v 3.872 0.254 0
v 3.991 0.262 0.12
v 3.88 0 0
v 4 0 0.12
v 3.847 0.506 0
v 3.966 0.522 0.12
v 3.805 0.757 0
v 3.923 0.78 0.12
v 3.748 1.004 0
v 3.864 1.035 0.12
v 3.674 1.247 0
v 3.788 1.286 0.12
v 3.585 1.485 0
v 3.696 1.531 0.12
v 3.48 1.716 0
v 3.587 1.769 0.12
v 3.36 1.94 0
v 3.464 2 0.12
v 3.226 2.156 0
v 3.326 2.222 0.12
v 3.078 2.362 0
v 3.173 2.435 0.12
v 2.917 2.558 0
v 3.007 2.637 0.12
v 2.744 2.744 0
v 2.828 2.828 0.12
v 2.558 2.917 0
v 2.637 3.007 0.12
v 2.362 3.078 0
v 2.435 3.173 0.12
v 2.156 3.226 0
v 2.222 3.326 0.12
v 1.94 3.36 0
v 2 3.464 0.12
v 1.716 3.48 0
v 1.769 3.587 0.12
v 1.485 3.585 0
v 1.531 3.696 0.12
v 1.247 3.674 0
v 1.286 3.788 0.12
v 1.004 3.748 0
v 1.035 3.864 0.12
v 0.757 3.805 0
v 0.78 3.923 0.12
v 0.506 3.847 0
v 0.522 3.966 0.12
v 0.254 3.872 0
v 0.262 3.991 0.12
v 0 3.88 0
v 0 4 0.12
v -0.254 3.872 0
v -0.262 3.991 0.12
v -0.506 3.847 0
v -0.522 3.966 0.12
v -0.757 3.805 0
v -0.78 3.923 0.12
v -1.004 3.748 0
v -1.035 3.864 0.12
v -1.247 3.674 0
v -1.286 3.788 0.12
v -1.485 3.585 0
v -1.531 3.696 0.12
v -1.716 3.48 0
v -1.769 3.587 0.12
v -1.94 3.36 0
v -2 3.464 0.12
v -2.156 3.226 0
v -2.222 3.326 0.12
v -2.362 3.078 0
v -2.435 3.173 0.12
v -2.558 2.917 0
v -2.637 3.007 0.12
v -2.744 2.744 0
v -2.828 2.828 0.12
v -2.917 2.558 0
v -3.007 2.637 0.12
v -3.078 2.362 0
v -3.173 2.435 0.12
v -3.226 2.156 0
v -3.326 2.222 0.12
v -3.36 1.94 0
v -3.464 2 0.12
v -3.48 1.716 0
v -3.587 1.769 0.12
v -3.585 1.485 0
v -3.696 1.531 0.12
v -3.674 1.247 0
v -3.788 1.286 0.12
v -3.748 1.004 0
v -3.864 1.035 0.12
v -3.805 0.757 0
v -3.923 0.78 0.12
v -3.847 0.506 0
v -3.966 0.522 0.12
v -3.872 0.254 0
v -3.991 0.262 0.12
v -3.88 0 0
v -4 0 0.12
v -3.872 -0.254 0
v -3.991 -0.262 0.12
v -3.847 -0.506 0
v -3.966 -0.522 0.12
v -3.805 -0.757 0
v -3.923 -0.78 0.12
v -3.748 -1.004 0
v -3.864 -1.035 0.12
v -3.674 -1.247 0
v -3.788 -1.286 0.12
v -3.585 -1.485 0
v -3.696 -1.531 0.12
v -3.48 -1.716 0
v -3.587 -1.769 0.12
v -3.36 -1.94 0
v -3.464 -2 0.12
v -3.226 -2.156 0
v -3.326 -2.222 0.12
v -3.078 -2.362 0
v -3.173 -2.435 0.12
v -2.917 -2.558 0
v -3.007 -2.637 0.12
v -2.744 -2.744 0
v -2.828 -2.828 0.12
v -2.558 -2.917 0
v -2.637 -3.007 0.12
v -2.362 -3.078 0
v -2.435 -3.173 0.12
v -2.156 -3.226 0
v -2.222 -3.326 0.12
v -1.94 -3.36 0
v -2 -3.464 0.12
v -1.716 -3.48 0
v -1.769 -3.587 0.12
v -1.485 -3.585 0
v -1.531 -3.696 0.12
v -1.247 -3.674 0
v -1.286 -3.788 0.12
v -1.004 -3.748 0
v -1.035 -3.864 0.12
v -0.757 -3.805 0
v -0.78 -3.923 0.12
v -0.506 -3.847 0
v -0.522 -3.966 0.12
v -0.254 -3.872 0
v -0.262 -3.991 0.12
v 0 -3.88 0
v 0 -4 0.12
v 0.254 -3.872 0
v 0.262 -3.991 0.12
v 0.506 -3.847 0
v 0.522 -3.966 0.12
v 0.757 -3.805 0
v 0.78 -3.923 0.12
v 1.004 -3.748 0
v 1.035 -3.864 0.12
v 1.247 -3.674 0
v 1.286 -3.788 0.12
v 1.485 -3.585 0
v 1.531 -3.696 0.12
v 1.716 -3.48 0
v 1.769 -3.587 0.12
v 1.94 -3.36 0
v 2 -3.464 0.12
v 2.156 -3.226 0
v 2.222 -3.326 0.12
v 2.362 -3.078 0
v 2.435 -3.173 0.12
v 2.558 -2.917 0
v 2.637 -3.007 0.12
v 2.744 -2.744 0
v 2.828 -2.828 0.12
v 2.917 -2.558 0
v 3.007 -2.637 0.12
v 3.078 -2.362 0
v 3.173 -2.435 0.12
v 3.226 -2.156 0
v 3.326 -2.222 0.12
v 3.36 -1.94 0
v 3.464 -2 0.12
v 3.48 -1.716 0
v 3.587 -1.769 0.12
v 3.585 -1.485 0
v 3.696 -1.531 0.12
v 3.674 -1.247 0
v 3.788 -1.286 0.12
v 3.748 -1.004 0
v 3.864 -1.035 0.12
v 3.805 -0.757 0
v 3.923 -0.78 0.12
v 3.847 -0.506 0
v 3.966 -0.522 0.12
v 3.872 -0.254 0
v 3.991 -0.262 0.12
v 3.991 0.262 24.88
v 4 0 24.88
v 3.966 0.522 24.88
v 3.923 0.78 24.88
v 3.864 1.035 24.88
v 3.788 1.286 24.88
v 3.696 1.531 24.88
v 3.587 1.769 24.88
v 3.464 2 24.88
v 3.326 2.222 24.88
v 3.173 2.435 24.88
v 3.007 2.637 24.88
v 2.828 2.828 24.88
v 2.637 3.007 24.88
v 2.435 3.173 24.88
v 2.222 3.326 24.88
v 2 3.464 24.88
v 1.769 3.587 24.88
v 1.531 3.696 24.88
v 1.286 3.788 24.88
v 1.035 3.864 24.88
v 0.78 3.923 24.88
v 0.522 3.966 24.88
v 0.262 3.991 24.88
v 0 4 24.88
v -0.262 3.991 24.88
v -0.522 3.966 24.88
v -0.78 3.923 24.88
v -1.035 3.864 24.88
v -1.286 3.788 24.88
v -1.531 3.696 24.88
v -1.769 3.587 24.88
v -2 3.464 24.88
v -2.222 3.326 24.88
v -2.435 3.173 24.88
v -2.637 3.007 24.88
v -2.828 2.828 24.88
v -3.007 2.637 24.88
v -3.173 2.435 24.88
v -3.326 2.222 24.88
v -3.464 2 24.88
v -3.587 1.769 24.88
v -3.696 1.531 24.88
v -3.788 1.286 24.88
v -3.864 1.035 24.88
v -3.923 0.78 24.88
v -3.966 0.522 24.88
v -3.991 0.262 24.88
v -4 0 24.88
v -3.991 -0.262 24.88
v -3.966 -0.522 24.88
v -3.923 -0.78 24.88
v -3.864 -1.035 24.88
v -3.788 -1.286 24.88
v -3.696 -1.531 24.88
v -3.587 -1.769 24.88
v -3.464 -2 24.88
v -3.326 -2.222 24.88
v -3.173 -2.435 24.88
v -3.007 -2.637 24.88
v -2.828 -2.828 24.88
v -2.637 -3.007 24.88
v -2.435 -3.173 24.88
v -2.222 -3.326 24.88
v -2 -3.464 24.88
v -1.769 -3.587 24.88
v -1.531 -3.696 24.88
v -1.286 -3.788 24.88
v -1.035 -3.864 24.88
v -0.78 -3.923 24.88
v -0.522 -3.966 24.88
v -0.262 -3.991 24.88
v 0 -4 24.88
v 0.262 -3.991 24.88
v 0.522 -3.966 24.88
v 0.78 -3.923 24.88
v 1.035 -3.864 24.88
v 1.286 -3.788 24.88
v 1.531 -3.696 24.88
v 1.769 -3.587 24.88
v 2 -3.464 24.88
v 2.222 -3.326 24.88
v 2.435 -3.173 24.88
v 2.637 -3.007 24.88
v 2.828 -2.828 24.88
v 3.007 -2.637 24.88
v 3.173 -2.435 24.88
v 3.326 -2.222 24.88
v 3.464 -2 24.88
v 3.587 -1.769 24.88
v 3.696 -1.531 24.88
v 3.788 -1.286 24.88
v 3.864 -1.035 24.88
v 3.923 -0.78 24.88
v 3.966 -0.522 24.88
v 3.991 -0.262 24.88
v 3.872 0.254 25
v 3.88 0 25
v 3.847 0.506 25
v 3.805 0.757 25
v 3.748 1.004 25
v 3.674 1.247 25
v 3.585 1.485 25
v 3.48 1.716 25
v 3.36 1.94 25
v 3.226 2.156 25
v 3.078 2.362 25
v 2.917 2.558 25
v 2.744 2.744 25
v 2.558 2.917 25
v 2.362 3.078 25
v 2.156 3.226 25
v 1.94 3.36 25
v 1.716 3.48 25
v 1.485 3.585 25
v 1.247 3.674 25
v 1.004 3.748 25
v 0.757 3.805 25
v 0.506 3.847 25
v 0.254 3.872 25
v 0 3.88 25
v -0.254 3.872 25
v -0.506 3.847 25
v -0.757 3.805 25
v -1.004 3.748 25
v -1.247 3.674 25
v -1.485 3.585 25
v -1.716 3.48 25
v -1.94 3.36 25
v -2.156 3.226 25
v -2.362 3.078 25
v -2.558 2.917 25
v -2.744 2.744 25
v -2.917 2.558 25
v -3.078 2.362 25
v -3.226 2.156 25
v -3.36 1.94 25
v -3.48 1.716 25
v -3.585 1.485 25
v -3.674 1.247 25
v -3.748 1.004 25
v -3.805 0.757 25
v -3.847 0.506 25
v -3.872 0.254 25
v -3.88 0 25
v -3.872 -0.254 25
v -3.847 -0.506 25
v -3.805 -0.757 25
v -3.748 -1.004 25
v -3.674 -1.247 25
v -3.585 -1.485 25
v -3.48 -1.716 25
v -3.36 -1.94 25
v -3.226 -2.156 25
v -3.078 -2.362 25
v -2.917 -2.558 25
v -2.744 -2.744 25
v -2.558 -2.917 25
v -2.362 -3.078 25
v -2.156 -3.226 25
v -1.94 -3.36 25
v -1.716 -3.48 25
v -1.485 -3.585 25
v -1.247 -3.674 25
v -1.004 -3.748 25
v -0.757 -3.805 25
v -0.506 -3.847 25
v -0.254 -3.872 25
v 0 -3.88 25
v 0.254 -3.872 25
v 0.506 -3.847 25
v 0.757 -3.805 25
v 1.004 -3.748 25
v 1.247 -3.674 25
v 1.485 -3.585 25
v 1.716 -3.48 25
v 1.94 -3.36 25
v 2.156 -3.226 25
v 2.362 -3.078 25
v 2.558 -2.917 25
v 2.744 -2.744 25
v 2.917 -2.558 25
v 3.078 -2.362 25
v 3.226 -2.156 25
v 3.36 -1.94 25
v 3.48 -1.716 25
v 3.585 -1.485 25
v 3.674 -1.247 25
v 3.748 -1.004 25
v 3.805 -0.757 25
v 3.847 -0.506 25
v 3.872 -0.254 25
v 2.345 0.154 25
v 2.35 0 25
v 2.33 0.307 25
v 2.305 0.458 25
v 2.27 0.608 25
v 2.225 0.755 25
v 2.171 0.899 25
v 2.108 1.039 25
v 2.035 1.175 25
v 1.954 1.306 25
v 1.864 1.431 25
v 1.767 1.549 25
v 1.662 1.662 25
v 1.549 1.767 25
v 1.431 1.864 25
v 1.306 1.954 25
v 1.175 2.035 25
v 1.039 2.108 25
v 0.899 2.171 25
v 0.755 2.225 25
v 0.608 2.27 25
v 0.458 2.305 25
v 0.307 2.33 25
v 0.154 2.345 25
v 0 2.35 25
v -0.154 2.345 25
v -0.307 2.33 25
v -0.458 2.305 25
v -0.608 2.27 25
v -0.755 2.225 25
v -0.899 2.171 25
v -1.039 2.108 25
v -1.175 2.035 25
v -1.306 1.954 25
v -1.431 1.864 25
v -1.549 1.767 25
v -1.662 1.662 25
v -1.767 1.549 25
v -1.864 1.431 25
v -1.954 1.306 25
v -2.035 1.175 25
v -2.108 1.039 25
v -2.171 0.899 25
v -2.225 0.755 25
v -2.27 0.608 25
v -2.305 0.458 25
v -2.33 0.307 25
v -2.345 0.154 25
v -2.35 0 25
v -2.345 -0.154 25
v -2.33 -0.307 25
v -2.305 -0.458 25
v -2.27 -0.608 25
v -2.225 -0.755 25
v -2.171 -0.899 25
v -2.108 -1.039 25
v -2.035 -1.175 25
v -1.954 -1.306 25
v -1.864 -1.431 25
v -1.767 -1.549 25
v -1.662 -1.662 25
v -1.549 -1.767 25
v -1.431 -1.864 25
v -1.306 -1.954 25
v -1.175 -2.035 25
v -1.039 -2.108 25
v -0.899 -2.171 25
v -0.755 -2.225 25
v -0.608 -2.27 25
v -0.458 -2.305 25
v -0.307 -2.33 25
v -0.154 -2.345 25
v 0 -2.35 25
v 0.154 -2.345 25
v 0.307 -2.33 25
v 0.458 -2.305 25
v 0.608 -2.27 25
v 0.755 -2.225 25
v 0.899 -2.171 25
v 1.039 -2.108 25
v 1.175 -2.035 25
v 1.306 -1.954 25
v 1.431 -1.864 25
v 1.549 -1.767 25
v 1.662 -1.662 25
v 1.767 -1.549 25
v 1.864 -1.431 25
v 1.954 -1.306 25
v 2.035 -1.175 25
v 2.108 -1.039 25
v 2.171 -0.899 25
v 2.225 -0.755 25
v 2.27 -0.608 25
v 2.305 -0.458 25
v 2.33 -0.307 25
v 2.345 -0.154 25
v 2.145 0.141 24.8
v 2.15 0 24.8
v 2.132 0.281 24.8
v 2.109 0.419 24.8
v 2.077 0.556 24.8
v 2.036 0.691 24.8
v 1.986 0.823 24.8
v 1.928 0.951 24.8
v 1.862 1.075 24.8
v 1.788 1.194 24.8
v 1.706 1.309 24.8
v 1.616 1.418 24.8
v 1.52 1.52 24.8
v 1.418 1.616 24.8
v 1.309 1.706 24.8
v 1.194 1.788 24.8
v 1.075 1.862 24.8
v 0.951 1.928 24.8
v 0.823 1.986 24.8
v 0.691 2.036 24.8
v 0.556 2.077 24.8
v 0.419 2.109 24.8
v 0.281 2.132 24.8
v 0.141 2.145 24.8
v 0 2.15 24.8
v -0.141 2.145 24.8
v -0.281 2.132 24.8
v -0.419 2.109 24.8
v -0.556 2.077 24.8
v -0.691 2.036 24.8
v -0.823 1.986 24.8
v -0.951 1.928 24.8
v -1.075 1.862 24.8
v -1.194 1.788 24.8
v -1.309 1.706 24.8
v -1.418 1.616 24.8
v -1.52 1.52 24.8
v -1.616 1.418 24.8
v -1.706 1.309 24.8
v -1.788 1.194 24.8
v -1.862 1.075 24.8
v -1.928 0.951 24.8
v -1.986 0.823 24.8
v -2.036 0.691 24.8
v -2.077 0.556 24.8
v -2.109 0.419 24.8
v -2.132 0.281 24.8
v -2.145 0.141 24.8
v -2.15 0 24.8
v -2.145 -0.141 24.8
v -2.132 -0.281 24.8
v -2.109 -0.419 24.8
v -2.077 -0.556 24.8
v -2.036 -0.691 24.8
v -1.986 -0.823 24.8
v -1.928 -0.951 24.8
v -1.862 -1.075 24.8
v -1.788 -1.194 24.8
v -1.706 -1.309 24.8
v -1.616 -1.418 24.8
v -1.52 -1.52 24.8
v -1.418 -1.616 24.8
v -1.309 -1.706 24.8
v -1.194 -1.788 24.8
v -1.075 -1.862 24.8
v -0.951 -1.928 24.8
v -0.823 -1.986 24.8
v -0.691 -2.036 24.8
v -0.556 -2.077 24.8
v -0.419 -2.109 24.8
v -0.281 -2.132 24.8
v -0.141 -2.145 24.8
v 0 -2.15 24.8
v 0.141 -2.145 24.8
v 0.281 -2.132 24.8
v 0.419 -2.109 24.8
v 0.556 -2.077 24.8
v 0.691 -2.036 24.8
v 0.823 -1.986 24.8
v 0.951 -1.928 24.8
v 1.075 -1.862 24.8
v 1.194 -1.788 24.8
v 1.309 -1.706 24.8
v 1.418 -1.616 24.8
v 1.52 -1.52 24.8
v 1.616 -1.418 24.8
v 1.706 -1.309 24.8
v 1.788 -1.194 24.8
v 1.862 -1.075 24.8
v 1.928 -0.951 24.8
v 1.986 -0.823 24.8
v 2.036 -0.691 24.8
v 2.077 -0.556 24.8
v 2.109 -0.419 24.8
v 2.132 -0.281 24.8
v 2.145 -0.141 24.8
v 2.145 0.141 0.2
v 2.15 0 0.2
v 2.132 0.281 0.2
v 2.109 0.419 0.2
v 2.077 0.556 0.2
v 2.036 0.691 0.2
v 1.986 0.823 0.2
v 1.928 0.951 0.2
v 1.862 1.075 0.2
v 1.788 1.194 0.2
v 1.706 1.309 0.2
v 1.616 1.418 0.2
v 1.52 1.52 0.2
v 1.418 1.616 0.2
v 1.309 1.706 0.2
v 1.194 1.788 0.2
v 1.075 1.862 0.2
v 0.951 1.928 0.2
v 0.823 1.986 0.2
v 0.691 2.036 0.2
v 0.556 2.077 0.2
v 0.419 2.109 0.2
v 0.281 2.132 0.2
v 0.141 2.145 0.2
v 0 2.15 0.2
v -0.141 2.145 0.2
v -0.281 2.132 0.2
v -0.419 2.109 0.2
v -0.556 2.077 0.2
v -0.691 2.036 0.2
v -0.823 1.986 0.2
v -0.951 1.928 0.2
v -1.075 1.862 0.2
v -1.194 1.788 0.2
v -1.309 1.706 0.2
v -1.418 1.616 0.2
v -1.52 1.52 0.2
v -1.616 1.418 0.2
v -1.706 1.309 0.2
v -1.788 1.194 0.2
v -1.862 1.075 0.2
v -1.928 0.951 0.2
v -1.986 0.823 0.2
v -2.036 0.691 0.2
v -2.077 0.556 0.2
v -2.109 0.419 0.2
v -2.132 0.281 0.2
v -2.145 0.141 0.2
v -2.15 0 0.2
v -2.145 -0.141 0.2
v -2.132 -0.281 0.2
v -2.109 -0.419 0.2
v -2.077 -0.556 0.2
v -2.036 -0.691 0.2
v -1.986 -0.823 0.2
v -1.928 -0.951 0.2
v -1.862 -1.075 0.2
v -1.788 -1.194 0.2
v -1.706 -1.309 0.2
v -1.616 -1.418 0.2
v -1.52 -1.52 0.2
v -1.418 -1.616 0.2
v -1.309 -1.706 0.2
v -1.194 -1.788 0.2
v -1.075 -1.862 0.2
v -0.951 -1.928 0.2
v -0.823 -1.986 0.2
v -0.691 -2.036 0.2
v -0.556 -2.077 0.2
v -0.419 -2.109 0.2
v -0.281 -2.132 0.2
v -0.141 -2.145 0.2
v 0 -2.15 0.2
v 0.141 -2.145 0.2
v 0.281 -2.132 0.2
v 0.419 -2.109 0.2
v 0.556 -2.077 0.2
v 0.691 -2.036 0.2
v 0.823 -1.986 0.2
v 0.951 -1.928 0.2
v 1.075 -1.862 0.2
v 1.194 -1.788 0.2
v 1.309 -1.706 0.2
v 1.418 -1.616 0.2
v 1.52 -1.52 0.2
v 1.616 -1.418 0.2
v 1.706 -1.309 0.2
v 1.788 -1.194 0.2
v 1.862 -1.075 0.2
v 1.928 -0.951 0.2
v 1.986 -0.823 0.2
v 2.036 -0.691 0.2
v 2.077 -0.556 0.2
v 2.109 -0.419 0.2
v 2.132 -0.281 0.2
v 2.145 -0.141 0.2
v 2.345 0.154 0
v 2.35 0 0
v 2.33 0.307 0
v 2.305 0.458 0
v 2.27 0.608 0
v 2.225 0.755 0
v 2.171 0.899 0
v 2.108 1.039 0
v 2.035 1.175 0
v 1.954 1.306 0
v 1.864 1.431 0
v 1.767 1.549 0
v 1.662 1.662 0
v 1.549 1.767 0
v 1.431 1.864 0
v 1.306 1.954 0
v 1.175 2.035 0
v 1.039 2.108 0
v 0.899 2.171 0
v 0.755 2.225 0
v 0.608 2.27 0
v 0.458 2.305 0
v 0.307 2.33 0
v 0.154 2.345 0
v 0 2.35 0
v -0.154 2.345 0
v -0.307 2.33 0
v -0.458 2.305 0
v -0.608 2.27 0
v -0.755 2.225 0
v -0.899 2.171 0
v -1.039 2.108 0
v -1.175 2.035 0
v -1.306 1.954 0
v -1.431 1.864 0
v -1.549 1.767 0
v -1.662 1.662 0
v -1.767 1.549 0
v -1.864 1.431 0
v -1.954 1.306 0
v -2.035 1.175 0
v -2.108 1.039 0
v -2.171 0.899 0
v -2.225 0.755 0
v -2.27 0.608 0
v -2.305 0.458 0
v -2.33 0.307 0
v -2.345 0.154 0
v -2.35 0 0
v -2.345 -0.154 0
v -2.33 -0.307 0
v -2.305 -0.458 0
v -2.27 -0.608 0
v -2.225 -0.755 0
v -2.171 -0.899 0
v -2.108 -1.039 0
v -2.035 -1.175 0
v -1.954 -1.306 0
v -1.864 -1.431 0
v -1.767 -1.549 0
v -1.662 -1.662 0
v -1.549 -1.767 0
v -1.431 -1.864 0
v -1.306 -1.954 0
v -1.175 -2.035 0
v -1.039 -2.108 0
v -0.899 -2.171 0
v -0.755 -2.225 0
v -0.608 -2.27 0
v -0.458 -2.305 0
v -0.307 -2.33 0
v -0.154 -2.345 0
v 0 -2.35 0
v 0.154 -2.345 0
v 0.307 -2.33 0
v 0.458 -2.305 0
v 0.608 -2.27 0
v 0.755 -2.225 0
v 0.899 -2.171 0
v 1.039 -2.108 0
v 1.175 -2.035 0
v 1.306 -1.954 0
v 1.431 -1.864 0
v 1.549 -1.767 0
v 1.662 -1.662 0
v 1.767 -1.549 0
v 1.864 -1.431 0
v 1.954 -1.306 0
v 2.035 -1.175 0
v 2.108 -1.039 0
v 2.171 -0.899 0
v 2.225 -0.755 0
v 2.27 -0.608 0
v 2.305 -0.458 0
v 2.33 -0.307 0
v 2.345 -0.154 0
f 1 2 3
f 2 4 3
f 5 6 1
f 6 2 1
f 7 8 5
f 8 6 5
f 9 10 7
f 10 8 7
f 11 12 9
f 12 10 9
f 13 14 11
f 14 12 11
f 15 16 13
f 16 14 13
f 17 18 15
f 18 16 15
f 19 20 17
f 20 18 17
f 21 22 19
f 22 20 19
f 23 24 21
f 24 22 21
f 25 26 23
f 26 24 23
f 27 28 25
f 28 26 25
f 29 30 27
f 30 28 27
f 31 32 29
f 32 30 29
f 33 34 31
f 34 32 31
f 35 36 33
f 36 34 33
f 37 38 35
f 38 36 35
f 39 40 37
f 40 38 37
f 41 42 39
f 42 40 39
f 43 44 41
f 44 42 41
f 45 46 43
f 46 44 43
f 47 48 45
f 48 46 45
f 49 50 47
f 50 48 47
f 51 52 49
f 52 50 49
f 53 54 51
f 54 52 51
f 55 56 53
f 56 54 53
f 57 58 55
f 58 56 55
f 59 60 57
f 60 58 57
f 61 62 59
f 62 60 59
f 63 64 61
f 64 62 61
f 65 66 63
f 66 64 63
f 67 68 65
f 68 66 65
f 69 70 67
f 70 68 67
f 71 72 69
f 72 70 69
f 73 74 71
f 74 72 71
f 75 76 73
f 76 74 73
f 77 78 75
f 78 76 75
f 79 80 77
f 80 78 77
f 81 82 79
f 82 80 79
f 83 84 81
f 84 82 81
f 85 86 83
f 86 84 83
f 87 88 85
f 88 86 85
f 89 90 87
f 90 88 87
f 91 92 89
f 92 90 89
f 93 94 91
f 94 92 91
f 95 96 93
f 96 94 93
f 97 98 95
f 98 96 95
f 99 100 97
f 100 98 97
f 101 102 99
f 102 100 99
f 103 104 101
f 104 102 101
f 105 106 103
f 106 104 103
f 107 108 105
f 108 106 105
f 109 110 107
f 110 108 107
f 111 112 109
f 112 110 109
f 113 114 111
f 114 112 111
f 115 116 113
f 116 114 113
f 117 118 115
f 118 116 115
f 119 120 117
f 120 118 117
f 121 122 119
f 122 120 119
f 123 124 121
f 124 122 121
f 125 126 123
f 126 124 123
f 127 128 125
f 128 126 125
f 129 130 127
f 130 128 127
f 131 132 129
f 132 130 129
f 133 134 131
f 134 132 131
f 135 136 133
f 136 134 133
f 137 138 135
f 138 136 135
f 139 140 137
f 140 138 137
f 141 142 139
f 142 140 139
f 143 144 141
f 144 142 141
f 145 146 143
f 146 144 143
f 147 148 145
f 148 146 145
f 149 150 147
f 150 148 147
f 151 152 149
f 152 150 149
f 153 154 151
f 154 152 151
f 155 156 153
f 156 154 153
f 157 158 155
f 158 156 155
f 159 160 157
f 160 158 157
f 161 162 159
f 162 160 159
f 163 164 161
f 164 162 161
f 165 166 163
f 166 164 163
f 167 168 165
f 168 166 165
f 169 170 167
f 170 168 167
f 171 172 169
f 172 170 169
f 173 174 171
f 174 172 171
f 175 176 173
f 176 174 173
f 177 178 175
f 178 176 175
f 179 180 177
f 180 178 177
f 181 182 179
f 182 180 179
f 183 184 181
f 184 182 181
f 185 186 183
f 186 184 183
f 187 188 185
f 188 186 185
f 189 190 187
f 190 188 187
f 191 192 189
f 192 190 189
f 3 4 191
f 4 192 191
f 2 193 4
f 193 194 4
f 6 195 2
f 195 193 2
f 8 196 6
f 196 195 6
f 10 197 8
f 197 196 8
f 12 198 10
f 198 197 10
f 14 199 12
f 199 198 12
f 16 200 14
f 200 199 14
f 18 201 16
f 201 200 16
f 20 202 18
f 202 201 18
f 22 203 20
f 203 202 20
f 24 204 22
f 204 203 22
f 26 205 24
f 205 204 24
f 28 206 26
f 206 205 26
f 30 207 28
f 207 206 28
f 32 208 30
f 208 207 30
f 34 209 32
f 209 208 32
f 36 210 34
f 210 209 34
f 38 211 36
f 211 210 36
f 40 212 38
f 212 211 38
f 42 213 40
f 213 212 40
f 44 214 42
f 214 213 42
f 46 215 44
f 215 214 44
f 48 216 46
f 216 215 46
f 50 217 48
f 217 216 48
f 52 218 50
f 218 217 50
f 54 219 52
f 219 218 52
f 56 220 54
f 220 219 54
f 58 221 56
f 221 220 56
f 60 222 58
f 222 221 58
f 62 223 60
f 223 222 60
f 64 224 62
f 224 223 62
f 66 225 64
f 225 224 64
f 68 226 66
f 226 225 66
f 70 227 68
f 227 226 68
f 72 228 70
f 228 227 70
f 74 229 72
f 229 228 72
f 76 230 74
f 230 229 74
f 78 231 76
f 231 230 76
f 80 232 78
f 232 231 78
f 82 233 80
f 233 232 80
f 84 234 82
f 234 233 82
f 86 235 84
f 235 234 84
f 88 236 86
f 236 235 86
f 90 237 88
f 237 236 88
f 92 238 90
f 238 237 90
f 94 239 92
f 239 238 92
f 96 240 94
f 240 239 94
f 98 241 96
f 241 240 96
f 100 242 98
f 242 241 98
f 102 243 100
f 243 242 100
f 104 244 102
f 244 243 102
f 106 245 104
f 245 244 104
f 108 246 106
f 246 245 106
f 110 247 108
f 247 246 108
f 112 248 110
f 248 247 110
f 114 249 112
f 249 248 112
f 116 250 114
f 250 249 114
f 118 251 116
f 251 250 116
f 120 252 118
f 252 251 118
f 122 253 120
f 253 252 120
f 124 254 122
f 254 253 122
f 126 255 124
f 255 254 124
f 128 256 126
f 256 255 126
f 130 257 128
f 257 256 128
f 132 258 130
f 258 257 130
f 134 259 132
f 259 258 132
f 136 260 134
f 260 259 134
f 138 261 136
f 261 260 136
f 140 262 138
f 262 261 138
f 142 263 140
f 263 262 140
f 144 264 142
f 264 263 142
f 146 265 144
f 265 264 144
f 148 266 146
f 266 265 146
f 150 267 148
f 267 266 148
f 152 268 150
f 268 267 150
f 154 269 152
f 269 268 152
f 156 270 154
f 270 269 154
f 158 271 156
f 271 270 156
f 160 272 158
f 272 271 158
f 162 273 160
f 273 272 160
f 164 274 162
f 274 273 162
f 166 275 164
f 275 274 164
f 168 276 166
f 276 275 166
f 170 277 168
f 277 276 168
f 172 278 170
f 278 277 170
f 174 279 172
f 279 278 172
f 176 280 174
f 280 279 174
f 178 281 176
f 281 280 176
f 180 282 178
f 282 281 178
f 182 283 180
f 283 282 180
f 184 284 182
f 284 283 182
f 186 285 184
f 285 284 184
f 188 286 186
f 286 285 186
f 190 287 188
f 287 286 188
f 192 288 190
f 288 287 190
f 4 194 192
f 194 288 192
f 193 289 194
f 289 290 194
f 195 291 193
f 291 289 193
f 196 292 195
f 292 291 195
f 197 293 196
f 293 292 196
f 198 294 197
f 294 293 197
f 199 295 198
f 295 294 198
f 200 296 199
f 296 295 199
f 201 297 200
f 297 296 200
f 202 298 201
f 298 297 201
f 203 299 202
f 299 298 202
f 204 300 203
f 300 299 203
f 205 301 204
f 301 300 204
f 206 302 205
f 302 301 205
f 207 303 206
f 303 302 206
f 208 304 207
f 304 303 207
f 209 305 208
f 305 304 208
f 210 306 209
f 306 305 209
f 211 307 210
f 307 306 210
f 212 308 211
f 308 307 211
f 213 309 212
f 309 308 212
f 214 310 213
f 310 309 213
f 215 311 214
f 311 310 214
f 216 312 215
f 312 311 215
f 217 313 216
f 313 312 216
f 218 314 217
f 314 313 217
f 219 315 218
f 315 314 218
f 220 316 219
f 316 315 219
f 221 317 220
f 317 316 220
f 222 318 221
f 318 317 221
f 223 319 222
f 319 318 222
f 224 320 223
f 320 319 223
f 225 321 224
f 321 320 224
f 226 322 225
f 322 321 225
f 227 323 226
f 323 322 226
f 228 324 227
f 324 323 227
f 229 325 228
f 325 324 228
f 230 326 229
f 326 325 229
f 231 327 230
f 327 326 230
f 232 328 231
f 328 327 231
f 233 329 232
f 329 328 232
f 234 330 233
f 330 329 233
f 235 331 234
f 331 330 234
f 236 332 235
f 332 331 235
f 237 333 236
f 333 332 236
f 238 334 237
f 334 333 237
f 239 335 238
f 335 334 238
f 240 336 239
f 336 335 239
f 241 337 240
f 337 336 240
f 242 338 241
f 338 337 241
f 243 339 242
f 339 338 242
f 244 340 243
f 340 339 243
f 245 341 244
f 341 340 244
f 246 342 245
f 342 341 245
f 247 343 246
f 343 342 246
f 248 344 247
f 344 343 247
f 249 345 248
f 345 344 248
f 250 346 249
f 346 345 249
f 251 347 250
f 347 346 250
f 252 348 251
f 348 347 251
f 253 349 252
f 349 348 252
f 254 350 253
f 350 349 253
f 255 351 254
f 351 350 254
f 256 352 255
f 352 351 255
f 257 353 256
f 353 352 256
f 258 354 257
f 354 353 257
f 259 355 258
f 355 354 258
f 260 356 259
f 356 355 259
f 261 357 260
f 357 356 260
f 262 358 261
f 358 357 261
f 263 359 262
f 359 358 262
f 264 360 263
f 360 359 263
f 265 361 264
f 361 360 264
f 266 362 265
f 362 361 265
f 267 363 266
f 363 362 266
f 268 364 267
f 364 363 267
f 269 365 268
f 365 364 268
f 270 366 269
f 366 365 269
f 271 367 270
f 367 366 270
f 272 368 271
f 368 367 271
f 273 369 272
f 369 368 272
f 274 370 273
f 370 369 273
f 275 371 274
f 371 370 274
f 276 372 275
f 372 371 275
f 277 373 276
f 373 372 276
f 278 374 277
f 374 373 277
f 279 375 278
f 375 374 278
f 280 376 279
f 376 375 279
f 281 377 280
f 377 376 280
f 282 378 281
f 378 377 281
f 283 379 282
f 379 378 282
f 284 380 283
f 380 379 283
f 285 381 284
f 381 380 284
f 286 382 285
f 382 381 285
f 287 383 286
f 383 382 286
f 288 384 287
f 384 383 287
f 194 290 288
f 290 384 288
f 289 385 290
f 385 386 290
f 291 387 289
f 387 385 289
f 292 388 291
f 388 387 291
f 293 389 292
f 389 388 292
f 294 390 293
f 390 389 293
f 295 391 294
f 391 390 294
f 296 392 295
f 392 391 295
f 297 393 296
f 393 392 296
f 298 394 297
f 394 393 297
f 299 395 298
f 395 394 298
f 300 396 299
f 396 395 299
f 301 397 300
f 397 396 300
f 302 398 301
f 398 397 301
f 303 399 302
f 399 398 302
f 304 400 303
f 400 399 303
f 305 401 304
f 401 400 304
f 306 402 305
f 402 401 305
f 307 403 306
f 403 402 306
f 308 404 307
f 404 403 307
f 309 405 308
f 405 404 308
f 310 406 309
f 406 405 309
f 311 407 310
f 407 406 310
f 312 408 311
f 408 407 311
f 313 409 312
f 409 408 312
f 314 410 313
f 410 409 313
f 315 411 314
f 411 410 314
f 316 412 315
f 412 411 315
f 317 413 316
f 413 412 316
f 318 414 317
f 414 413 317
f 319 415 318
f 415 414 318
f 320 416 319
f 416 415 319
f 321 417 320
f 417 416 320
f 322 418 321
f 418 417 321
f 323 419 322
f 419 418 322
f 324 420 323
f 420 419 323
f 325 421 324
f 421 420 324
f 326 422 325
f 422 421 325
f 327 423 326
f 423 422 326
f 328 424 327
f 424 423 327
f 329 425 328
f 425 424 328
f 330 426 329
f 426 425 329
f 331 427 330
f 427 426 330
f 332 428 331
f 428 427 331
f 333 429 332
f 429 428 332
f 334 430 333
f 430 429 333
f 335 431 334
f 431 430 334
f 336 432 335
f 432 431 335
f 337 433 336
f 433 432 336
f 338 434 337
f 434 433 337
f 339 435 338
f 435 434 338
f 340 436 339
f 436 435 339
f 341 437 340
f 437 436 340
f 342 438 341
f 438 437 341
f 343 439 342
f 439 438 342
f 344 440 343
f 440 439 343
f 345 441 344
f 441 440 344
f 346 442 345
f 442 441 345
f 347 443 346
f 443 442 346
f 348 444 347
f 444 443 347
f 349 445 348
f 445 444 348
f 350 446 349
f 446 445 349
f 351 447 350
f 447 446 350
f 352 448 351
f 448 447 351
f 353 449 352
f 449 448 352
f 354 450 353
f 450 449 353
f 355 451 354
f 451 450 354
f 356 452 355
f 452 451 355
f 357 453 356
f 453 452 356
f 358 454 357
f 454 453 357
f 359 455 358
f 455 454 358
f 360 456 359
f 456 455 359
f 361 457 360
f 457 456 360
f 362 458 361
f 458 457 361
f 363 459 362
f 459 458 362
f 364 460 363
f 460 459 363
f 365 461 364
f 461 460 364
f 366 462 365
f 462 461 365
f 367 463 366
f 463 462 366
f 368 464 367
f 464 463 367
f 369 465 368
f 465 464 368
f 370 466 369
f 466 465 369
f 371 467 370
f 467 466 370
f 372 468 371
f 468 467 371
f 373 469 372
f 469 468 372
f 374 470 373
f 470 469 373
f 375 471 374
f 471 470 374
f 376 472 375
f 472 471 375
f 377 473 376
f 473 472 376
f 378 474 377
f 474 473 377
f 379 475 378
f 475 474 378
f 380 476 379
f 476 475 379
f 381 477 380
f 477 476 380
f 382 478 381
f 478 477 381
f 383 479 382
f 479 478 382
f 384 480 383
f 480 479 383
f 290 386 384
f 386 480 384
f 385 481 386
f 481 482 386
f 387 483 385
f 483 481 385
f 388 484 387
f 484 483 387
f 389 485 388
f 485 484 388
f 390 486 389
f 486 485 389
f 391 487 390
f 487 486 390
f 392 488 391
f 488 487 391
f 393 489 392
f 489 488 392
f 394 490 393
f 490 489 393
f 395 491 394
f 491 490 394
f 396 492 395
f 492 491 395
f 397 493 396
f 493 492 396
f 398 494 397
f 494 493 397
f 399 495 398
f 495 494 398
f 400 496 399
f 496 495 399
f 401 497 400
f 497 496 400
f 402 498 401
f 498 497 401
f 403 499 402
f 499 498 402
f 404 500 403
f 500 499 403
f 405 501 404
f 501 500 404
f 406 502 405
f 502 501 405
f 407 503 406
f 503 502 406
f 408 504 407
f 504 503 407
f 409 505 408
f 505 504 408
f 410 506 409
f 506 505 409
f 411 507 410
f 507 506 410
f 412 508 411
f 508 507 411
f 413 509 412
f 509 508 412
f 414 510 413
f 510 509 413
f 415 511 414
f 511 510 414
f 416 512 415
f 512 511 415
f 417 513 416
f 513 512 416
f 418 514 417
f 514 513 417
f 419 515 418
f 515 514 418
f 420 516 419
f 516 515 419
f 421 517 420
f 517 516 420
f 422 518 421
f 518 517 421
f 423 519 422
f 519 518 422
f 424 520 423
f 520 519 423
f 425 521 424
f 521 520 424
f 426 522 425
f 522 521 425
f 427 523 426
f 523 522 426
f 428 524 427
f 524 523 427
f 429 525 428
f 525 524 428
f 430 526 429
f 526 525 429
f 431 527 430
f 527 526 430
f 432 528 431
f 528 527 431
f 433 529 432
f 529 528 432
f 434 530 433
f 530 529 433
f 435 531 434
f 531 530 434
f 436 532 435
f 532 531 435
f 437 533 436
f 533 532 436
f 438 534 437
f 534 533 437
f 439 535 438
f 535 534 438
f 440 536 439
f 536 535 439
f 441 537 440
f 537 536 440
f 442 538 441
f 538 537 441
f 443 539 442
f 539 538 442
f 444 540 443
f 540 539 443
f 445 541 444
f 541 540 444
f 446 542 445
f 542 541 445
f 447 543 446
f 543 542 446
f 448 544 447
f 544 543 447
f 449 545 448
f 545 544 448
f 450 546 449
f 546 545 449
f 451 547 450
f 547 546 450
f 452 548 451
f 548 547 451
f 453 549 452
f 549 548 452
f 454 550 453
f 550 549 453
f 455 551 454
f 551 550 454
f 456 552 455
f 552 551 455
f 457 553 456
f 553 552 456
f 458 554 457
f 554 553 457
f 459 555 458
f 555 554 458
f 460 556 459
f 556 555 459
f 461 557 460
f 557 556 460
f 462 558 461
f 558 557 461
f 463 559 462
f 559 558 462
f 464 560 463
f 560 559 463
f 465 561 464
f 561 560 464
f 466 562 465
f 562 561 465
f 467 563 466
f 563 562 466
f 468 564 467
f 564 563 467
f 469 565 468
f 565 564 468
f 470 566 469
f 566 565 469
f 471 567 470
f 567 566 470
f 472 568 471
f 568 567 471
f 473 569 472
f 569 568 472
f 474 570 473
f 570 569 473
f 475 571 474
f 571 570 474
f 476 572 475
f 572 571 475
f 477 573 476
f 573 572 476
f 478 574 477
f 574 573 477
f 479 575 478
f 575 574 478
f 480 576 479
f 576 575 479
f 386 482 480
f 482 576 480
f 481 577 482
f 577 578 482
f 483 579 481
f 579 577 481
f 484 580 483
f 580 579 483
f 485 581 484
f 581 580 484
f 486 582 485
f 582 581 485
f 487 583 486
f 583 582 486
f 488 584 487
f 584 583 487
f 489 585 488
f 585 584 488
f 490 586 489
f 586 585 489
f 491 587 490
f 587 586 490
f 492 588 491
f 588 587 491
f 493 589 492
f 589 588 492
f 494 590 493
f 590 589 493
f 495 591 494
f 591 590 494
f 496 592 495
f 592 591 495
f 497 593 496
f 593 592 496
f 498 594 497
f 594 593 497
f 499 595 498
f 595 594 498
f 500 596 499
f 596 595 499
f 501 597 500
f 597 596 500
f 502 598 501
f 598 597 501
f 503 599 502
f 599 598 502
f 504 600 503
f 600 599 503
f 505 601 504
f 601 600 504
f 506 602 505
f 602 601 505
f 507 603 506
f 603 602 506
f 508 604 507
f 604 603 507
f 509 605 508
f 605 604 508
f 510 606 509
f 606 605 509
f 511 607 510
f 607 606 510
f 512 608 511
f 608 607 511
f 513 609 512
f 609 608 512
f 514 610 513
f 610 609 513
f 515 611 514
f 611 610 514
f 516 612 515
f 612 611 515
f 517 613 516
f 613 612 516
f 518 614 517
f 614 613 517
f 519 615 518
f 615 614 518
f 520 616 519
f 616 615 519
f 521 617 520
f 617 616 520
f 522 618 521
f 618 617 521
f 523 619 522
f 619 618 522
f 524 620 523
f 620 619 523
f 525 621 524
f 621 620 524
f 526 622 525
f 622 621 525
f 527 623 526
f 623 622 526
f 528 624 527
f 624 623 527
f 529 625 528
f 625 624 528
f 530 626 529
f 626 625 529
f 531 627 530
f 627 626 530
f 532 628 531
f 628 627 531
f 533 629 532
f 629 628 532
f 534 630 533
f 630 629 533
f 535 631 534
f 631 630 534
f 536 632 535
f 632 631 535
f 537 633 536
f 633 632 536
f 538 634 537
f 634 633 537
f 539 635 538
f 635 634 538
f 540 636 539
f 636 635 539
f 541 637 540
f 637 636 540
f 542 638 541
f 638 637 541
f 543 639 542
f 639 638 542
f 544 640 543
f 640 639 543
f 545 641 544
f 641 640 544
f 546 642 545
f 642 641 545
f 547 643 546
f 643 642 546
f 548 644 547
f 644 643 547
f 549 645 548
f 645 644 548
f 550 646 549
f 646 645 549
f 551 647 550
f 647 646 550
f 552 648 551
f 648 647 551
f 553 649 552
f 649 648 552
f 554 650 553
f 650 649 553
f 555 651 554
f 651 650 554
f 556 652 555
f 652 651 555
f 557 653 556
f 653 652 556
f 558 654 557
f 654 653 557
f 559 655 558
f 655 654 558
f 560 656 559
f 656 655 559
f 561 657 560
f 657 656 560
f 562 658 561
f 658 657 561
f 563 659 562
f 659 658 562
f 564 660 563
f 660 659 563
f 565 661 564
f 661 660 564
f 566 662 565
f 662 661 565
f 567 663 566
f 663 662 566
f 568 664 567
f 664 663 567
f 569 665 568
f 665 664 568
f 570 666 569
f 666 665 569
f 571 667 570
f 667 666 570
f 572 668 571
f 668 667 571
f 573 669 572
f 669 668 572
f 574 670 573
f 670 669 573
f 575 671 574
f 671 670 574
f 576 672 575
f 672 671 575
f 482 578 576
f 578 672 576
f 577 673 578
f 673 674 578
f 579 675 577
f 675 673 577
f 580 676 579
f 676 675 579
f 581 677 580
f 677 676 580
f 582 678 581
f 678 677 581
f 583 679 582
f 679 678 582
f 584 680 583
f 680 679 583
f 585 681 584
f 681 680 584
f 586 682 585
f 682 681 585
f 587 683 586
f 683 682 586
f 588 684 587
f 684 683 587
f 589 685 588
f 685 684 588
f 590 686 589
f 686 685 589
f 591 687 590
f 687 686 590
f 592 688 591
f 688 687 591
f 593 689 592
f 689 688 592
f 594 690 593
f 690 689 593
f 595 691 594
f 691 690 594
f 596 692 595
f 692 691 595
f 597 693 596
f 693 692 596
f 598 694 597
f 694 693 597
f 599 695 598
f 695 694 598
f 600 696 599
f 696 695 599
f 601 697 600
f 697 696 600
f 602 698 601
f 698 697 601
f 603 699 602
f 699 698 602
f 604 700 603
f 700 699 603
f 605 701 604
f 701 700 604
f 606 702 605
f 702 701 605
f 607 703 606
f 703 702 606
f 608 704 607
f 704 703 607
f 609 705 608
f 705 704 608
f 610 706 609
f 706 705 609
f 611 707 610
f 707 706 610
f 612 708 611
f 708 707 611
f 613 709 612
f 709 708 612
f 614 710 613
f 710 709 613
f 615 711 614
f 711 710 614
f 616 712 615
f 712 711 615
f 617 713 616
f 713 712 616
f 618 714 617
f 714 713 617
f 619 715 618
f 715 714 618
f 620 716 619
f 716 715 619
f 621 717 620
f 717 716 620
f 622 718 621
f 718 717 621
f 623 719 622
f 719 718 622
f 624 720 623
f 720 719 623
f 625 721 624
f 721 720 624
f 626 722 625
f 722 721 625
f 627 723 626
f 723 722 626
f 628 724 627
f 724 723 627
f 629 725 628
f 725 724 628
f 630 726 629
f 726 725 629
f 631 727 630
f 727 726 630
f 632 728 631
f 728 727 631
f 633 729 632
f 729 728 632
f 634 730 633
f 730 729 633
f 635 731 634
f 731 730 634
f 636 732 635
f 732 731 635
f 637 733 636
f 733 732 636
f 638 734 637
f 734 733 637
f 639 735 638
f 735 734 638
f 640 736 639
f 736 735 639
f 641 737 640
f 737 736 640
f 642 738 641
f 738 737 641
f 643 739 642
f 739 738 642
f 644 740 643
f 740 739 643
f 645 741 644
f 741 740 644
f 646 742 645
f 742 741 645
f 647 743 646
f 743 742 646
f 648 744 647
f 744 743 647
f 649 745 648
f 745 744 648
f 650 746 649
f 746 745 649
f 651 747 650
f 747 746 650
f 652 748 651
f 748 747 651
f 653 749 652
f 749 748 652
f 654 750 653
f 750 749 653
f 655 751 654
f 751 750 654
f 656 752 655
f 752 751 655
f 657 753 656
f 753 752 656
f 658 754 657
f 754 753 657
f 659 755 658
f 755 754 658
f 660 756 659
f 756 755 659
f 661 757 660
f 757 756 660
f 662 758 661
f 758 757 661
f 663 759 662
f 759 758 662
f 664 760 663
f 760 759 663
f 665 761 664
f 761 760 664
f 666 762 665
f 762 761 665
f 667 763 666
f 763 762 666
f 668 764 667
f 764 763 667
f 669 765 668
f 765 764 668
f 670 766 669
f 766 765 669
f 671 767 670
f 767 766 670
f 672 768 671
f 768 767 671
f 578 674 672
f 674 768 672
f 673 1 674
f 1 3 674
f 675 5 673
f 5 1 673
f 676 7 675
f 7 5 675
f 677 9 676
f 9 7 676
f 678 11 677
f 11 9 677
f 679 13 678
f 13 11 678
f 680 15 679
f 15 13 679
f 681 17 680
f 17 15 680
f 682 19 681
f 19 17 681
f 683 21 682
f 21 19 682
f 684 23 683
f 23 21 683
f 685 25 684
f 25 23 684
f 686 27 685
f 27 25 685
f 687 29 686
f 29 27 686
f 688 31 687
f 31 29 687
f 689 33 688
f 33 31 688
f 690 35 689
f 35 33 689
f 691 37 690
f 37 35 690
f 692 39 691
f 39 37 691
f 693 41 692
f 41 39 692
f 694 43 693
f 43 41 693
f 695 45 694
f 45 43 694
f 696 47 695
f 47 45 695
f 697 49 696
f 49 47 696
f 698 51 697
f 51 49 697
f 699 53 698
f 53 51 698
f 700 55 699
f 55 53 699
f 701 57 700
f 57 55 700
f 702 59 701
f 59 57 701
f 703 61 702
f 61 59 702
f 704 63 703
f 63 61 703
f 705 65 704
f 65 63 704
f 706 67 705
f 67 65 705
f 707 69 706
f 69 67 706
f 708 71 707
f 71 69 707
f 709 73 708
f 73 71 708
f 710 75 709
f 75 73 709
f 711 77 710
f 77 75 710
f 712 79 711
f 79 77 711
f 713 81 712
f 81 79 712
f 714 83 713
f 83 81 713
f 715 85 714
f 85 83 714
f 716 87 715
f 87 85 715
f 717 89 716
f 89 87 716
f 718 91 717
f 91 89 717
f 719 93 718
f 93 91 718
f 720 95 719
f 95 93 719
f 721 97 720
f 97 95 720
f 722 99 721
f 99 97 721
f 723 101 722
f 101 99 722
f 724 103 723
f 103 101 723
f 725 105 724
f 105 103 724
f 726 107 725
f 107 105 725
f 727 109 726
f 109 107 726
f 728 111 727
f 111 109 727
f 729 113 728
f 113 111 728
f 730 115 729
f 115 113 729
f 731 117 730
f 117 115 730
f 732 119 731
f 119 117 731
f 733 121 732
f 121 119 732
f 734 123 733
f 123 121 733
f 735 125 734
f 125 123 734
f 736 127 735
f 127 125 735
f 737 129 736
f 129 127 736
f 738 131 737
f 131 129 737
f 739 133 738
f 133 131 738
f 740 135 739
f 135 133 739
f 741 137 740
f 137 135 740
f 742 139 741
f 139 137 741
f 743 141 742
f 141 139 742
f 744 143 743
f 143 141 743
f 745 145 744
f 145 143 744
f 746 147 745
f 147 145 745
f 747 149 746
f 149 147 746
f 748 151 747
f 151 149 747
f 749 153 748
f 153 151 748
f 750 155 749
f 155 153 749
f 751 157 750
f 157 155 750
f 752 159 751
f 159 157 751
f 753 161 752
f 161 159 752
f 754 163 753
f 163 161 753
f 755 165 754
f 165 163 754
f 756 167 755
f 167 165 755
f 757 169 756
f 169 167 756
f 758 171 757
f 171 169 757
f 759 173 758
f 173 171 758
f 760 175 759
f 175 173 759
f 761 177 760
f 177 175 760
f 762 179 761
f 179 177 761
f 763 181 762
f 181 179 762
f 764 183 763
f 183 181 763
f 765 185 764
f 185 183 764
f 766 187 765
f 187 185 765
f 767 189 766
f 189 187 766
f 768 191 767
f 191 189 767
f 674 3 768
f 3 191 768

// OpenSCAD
// OOMP generic catalogue model; units: mm.
// Stud length is additional to body depth. Tapping depths are model assumptions.
variant = "full"; // [full, display]
family = "spacer";
connection_type = "plain";
depth_mm = 25;
stud_length_mm = 0;
tapped_depth_mm = 0;
bore_mm = 4.3;
outer_diameter_mm = 8;
across_flats_mm = 6;
thread_nominal_diameter_mm = 3;
thread_pitch_mm = 0.5;
edge_chamfer_mm = 0.12;
mouth_chamfer_mm = 0.2;
angular_segments = 96;
samples_per_pitch = 16;

// Boundary travels up the outside, then down any tapped/plain bore.
// Equal-height rings at shoulders form the annular shoulder faces.
n = angular_segments;
threaded = family == "standoff";
has_stud = connection_type == "stud_to_tapped" || connection_type == "stud_to_stud";
two_studs = connection_type == "stud_to_stud";
through = !threaded || connection_type == "tapped_to_tapped";
pitch = thread_pitch_mm;
diameter = threaded ? thread_nominal_diameter_mm : bore_mm;
minor = diameter - 5*sqrt(3)*pitch/8;
transition = mouth_chamfer_mm + (threaded ? 5*sqrt(3)*pitch/16 : 0);
tip_chamfer = mouth_chamfer_mm + 17*sqrt(3)*pitch/48;
function sorted(v) = len(v)<=1 ? v : let(p=v[0])
    concat(sorted([for(x=v) if(x<p-1e-8) x]), [p], sorted([for(x=v) if(x>p+1e-8) x]));
function reverse(v) = [for(i=[len(v)-1:-1:0]) v[i]];
function theta(i) = i*360/n;
function fract(x) = x-floor(x);
function phase_distance(i,z) = abs(fract(z/pitch-theta(i)/360+0.5)-0.5);
function thread_r(i,z) = minor/2 + min(5*sqrt(3)*pitch/16,
    max(0,(phase_distance(i,z)-0.125)*pitch*sqrt(3)));
function stud_r(i,z,tip) = min(diameter/2 - (variant=="full" ?
    min(17*sqrt(3)*pitch/48,max(0,(phase_distance(i,z)-0.0625)*pitch*sqrt(3))) : 0),
    diameter/2-tip_chamfer+abs(z-tip));
function body_r(i,z) = (threaded ? across_flats_mm/2/cos(theta(i)%60-30) : outer_diameter_mm/2)
    - max(0,edge_chamfer_mm-min(z,depth_mm-z));
function bore_r(i,z) = max(threaded ? (variant=="full" ? thread_r(i,z) : minor/2) : diameter/2,
    diameter/2+mouth_chamfer_mm-(through ? min(z,depth_mm-z) : depth_mm-z));
function stud_z(a,b,tip) = let(count=variant=="full" ? ceil(stud_length_mm/pitch*samples_per_pitch) : 1)
    sorted(concat([for(i=[0:count]) a+(b-a)*i/count], [tip==a ? tip+tip_chamfer : tip-tip_chamfer]));
body_z = sorted([0,edge_chamfer_mm,depth_mm-edge_chamfer_mm,depth_mm]);
low = through ? 0 : depth_mm-tapped_depth_mm;
count = threaded && variant=="full" ? ceil((depth_mm-low)/pitch*samples_per_pitch) : 1;
bore_z = two_studs ? [] : reverse(sorted(concat(
    [for(i=[0:count]) low+(depth_mm-low)*i/count],
    [depth_mm-mouth_chamfer_mm,depth_mm-transition],
    through ? [mouth_chamfer_mm,transition] : [])));
// Ring descriptors: [height, kind, tip]. Kind: 0 body, 1 stud, 2 bore.
rings = concat(
    has_stud ? [for(z=stud_z(-stud_length_mm,0,-stud_length_mm)) [z,1,-stud_length_mm]] : [],
    [for(z=body_z) [z,0,0]],
    two_studs ? [for(z=stud_z(depth_mm,depth_mm+stud_length_mm,depth_mm+stud_length_mm)) [z,1,depth_mm+stud_length_mm]] : [],
    [for(z=bore_z) [z,2,0]]);
function radius(i,ring) = ring[1]==0 ? body_r(i,ring[0]) :
    ring[1]==1 ? stud_r(i,ring[0],ring[2]) : bore_r(i,ring[0]);
points = concat([for(ring=rings) for(i=[0:n-1])
    [radius(i,ring)*cos(theta(i)),radius(i,ring)*sin(theta(i)),ring[0]]],
    through ? [] : [[0,0,rings[0][0]],[0,0,rings[len(rings)-1][0]]]);
center = len(rings)*n;
last = (len(rings)-1)*n;
// OpenSCAD winding is opposite to STL winding.
faces = concat(
    [for(j=[0:len(rings)-(through ? 1 : 2)]) for(i=[0:n-1]) each
        let(a=j*n+i,b=j*n+(i+1)%n,c=((j+1)%len(rings))*n+(i+1)%n,d=((j+1)%len(rings))*n+i)
        [[a,c,b],[a,d,c]]],
    through ? [] : [for(i=[0:n-1]) each let(k=(i+1)%n)
        [[center,i,k],[center+1,last+k,last+i]]]);
assert(family=="spacer" || family=="standoff");
assert(!threaded || connection_type=="tapped_to_tapped" || has_stud);
assert(depth_mm>0 && diameter>0 && pitch>0);
assert(variant=="full" || variant=="display");
assert(n>=24 && n%12==0 && samples_per_pitch>=8);
assert(mouth_chamfer_mm>0 && mouth_chamfer_mm<depth_mm/2);
assert(edge_chamfer_mm>=0 && edge_chamfer_mm<depth_mm/2);
assert(diameter+4*max(mouth_chamfer_mm,edge_chamfer_mm) < (threaded ? across_flats_mm : outer_diameter_mm));
assert(!has_stud || stud_length_mm>2*mouth_chamfer_mm);
assert(!through || !threaded || 2*transition<depth_mm);
assert(connection_type!="stud_to_tapped" || (tapped_depth_mm>transition && tapped_depth_mm<depth_mm));
color([0.86,0.85,0.81]) polyhedron(points=points,faces=faces,convexity=20);
